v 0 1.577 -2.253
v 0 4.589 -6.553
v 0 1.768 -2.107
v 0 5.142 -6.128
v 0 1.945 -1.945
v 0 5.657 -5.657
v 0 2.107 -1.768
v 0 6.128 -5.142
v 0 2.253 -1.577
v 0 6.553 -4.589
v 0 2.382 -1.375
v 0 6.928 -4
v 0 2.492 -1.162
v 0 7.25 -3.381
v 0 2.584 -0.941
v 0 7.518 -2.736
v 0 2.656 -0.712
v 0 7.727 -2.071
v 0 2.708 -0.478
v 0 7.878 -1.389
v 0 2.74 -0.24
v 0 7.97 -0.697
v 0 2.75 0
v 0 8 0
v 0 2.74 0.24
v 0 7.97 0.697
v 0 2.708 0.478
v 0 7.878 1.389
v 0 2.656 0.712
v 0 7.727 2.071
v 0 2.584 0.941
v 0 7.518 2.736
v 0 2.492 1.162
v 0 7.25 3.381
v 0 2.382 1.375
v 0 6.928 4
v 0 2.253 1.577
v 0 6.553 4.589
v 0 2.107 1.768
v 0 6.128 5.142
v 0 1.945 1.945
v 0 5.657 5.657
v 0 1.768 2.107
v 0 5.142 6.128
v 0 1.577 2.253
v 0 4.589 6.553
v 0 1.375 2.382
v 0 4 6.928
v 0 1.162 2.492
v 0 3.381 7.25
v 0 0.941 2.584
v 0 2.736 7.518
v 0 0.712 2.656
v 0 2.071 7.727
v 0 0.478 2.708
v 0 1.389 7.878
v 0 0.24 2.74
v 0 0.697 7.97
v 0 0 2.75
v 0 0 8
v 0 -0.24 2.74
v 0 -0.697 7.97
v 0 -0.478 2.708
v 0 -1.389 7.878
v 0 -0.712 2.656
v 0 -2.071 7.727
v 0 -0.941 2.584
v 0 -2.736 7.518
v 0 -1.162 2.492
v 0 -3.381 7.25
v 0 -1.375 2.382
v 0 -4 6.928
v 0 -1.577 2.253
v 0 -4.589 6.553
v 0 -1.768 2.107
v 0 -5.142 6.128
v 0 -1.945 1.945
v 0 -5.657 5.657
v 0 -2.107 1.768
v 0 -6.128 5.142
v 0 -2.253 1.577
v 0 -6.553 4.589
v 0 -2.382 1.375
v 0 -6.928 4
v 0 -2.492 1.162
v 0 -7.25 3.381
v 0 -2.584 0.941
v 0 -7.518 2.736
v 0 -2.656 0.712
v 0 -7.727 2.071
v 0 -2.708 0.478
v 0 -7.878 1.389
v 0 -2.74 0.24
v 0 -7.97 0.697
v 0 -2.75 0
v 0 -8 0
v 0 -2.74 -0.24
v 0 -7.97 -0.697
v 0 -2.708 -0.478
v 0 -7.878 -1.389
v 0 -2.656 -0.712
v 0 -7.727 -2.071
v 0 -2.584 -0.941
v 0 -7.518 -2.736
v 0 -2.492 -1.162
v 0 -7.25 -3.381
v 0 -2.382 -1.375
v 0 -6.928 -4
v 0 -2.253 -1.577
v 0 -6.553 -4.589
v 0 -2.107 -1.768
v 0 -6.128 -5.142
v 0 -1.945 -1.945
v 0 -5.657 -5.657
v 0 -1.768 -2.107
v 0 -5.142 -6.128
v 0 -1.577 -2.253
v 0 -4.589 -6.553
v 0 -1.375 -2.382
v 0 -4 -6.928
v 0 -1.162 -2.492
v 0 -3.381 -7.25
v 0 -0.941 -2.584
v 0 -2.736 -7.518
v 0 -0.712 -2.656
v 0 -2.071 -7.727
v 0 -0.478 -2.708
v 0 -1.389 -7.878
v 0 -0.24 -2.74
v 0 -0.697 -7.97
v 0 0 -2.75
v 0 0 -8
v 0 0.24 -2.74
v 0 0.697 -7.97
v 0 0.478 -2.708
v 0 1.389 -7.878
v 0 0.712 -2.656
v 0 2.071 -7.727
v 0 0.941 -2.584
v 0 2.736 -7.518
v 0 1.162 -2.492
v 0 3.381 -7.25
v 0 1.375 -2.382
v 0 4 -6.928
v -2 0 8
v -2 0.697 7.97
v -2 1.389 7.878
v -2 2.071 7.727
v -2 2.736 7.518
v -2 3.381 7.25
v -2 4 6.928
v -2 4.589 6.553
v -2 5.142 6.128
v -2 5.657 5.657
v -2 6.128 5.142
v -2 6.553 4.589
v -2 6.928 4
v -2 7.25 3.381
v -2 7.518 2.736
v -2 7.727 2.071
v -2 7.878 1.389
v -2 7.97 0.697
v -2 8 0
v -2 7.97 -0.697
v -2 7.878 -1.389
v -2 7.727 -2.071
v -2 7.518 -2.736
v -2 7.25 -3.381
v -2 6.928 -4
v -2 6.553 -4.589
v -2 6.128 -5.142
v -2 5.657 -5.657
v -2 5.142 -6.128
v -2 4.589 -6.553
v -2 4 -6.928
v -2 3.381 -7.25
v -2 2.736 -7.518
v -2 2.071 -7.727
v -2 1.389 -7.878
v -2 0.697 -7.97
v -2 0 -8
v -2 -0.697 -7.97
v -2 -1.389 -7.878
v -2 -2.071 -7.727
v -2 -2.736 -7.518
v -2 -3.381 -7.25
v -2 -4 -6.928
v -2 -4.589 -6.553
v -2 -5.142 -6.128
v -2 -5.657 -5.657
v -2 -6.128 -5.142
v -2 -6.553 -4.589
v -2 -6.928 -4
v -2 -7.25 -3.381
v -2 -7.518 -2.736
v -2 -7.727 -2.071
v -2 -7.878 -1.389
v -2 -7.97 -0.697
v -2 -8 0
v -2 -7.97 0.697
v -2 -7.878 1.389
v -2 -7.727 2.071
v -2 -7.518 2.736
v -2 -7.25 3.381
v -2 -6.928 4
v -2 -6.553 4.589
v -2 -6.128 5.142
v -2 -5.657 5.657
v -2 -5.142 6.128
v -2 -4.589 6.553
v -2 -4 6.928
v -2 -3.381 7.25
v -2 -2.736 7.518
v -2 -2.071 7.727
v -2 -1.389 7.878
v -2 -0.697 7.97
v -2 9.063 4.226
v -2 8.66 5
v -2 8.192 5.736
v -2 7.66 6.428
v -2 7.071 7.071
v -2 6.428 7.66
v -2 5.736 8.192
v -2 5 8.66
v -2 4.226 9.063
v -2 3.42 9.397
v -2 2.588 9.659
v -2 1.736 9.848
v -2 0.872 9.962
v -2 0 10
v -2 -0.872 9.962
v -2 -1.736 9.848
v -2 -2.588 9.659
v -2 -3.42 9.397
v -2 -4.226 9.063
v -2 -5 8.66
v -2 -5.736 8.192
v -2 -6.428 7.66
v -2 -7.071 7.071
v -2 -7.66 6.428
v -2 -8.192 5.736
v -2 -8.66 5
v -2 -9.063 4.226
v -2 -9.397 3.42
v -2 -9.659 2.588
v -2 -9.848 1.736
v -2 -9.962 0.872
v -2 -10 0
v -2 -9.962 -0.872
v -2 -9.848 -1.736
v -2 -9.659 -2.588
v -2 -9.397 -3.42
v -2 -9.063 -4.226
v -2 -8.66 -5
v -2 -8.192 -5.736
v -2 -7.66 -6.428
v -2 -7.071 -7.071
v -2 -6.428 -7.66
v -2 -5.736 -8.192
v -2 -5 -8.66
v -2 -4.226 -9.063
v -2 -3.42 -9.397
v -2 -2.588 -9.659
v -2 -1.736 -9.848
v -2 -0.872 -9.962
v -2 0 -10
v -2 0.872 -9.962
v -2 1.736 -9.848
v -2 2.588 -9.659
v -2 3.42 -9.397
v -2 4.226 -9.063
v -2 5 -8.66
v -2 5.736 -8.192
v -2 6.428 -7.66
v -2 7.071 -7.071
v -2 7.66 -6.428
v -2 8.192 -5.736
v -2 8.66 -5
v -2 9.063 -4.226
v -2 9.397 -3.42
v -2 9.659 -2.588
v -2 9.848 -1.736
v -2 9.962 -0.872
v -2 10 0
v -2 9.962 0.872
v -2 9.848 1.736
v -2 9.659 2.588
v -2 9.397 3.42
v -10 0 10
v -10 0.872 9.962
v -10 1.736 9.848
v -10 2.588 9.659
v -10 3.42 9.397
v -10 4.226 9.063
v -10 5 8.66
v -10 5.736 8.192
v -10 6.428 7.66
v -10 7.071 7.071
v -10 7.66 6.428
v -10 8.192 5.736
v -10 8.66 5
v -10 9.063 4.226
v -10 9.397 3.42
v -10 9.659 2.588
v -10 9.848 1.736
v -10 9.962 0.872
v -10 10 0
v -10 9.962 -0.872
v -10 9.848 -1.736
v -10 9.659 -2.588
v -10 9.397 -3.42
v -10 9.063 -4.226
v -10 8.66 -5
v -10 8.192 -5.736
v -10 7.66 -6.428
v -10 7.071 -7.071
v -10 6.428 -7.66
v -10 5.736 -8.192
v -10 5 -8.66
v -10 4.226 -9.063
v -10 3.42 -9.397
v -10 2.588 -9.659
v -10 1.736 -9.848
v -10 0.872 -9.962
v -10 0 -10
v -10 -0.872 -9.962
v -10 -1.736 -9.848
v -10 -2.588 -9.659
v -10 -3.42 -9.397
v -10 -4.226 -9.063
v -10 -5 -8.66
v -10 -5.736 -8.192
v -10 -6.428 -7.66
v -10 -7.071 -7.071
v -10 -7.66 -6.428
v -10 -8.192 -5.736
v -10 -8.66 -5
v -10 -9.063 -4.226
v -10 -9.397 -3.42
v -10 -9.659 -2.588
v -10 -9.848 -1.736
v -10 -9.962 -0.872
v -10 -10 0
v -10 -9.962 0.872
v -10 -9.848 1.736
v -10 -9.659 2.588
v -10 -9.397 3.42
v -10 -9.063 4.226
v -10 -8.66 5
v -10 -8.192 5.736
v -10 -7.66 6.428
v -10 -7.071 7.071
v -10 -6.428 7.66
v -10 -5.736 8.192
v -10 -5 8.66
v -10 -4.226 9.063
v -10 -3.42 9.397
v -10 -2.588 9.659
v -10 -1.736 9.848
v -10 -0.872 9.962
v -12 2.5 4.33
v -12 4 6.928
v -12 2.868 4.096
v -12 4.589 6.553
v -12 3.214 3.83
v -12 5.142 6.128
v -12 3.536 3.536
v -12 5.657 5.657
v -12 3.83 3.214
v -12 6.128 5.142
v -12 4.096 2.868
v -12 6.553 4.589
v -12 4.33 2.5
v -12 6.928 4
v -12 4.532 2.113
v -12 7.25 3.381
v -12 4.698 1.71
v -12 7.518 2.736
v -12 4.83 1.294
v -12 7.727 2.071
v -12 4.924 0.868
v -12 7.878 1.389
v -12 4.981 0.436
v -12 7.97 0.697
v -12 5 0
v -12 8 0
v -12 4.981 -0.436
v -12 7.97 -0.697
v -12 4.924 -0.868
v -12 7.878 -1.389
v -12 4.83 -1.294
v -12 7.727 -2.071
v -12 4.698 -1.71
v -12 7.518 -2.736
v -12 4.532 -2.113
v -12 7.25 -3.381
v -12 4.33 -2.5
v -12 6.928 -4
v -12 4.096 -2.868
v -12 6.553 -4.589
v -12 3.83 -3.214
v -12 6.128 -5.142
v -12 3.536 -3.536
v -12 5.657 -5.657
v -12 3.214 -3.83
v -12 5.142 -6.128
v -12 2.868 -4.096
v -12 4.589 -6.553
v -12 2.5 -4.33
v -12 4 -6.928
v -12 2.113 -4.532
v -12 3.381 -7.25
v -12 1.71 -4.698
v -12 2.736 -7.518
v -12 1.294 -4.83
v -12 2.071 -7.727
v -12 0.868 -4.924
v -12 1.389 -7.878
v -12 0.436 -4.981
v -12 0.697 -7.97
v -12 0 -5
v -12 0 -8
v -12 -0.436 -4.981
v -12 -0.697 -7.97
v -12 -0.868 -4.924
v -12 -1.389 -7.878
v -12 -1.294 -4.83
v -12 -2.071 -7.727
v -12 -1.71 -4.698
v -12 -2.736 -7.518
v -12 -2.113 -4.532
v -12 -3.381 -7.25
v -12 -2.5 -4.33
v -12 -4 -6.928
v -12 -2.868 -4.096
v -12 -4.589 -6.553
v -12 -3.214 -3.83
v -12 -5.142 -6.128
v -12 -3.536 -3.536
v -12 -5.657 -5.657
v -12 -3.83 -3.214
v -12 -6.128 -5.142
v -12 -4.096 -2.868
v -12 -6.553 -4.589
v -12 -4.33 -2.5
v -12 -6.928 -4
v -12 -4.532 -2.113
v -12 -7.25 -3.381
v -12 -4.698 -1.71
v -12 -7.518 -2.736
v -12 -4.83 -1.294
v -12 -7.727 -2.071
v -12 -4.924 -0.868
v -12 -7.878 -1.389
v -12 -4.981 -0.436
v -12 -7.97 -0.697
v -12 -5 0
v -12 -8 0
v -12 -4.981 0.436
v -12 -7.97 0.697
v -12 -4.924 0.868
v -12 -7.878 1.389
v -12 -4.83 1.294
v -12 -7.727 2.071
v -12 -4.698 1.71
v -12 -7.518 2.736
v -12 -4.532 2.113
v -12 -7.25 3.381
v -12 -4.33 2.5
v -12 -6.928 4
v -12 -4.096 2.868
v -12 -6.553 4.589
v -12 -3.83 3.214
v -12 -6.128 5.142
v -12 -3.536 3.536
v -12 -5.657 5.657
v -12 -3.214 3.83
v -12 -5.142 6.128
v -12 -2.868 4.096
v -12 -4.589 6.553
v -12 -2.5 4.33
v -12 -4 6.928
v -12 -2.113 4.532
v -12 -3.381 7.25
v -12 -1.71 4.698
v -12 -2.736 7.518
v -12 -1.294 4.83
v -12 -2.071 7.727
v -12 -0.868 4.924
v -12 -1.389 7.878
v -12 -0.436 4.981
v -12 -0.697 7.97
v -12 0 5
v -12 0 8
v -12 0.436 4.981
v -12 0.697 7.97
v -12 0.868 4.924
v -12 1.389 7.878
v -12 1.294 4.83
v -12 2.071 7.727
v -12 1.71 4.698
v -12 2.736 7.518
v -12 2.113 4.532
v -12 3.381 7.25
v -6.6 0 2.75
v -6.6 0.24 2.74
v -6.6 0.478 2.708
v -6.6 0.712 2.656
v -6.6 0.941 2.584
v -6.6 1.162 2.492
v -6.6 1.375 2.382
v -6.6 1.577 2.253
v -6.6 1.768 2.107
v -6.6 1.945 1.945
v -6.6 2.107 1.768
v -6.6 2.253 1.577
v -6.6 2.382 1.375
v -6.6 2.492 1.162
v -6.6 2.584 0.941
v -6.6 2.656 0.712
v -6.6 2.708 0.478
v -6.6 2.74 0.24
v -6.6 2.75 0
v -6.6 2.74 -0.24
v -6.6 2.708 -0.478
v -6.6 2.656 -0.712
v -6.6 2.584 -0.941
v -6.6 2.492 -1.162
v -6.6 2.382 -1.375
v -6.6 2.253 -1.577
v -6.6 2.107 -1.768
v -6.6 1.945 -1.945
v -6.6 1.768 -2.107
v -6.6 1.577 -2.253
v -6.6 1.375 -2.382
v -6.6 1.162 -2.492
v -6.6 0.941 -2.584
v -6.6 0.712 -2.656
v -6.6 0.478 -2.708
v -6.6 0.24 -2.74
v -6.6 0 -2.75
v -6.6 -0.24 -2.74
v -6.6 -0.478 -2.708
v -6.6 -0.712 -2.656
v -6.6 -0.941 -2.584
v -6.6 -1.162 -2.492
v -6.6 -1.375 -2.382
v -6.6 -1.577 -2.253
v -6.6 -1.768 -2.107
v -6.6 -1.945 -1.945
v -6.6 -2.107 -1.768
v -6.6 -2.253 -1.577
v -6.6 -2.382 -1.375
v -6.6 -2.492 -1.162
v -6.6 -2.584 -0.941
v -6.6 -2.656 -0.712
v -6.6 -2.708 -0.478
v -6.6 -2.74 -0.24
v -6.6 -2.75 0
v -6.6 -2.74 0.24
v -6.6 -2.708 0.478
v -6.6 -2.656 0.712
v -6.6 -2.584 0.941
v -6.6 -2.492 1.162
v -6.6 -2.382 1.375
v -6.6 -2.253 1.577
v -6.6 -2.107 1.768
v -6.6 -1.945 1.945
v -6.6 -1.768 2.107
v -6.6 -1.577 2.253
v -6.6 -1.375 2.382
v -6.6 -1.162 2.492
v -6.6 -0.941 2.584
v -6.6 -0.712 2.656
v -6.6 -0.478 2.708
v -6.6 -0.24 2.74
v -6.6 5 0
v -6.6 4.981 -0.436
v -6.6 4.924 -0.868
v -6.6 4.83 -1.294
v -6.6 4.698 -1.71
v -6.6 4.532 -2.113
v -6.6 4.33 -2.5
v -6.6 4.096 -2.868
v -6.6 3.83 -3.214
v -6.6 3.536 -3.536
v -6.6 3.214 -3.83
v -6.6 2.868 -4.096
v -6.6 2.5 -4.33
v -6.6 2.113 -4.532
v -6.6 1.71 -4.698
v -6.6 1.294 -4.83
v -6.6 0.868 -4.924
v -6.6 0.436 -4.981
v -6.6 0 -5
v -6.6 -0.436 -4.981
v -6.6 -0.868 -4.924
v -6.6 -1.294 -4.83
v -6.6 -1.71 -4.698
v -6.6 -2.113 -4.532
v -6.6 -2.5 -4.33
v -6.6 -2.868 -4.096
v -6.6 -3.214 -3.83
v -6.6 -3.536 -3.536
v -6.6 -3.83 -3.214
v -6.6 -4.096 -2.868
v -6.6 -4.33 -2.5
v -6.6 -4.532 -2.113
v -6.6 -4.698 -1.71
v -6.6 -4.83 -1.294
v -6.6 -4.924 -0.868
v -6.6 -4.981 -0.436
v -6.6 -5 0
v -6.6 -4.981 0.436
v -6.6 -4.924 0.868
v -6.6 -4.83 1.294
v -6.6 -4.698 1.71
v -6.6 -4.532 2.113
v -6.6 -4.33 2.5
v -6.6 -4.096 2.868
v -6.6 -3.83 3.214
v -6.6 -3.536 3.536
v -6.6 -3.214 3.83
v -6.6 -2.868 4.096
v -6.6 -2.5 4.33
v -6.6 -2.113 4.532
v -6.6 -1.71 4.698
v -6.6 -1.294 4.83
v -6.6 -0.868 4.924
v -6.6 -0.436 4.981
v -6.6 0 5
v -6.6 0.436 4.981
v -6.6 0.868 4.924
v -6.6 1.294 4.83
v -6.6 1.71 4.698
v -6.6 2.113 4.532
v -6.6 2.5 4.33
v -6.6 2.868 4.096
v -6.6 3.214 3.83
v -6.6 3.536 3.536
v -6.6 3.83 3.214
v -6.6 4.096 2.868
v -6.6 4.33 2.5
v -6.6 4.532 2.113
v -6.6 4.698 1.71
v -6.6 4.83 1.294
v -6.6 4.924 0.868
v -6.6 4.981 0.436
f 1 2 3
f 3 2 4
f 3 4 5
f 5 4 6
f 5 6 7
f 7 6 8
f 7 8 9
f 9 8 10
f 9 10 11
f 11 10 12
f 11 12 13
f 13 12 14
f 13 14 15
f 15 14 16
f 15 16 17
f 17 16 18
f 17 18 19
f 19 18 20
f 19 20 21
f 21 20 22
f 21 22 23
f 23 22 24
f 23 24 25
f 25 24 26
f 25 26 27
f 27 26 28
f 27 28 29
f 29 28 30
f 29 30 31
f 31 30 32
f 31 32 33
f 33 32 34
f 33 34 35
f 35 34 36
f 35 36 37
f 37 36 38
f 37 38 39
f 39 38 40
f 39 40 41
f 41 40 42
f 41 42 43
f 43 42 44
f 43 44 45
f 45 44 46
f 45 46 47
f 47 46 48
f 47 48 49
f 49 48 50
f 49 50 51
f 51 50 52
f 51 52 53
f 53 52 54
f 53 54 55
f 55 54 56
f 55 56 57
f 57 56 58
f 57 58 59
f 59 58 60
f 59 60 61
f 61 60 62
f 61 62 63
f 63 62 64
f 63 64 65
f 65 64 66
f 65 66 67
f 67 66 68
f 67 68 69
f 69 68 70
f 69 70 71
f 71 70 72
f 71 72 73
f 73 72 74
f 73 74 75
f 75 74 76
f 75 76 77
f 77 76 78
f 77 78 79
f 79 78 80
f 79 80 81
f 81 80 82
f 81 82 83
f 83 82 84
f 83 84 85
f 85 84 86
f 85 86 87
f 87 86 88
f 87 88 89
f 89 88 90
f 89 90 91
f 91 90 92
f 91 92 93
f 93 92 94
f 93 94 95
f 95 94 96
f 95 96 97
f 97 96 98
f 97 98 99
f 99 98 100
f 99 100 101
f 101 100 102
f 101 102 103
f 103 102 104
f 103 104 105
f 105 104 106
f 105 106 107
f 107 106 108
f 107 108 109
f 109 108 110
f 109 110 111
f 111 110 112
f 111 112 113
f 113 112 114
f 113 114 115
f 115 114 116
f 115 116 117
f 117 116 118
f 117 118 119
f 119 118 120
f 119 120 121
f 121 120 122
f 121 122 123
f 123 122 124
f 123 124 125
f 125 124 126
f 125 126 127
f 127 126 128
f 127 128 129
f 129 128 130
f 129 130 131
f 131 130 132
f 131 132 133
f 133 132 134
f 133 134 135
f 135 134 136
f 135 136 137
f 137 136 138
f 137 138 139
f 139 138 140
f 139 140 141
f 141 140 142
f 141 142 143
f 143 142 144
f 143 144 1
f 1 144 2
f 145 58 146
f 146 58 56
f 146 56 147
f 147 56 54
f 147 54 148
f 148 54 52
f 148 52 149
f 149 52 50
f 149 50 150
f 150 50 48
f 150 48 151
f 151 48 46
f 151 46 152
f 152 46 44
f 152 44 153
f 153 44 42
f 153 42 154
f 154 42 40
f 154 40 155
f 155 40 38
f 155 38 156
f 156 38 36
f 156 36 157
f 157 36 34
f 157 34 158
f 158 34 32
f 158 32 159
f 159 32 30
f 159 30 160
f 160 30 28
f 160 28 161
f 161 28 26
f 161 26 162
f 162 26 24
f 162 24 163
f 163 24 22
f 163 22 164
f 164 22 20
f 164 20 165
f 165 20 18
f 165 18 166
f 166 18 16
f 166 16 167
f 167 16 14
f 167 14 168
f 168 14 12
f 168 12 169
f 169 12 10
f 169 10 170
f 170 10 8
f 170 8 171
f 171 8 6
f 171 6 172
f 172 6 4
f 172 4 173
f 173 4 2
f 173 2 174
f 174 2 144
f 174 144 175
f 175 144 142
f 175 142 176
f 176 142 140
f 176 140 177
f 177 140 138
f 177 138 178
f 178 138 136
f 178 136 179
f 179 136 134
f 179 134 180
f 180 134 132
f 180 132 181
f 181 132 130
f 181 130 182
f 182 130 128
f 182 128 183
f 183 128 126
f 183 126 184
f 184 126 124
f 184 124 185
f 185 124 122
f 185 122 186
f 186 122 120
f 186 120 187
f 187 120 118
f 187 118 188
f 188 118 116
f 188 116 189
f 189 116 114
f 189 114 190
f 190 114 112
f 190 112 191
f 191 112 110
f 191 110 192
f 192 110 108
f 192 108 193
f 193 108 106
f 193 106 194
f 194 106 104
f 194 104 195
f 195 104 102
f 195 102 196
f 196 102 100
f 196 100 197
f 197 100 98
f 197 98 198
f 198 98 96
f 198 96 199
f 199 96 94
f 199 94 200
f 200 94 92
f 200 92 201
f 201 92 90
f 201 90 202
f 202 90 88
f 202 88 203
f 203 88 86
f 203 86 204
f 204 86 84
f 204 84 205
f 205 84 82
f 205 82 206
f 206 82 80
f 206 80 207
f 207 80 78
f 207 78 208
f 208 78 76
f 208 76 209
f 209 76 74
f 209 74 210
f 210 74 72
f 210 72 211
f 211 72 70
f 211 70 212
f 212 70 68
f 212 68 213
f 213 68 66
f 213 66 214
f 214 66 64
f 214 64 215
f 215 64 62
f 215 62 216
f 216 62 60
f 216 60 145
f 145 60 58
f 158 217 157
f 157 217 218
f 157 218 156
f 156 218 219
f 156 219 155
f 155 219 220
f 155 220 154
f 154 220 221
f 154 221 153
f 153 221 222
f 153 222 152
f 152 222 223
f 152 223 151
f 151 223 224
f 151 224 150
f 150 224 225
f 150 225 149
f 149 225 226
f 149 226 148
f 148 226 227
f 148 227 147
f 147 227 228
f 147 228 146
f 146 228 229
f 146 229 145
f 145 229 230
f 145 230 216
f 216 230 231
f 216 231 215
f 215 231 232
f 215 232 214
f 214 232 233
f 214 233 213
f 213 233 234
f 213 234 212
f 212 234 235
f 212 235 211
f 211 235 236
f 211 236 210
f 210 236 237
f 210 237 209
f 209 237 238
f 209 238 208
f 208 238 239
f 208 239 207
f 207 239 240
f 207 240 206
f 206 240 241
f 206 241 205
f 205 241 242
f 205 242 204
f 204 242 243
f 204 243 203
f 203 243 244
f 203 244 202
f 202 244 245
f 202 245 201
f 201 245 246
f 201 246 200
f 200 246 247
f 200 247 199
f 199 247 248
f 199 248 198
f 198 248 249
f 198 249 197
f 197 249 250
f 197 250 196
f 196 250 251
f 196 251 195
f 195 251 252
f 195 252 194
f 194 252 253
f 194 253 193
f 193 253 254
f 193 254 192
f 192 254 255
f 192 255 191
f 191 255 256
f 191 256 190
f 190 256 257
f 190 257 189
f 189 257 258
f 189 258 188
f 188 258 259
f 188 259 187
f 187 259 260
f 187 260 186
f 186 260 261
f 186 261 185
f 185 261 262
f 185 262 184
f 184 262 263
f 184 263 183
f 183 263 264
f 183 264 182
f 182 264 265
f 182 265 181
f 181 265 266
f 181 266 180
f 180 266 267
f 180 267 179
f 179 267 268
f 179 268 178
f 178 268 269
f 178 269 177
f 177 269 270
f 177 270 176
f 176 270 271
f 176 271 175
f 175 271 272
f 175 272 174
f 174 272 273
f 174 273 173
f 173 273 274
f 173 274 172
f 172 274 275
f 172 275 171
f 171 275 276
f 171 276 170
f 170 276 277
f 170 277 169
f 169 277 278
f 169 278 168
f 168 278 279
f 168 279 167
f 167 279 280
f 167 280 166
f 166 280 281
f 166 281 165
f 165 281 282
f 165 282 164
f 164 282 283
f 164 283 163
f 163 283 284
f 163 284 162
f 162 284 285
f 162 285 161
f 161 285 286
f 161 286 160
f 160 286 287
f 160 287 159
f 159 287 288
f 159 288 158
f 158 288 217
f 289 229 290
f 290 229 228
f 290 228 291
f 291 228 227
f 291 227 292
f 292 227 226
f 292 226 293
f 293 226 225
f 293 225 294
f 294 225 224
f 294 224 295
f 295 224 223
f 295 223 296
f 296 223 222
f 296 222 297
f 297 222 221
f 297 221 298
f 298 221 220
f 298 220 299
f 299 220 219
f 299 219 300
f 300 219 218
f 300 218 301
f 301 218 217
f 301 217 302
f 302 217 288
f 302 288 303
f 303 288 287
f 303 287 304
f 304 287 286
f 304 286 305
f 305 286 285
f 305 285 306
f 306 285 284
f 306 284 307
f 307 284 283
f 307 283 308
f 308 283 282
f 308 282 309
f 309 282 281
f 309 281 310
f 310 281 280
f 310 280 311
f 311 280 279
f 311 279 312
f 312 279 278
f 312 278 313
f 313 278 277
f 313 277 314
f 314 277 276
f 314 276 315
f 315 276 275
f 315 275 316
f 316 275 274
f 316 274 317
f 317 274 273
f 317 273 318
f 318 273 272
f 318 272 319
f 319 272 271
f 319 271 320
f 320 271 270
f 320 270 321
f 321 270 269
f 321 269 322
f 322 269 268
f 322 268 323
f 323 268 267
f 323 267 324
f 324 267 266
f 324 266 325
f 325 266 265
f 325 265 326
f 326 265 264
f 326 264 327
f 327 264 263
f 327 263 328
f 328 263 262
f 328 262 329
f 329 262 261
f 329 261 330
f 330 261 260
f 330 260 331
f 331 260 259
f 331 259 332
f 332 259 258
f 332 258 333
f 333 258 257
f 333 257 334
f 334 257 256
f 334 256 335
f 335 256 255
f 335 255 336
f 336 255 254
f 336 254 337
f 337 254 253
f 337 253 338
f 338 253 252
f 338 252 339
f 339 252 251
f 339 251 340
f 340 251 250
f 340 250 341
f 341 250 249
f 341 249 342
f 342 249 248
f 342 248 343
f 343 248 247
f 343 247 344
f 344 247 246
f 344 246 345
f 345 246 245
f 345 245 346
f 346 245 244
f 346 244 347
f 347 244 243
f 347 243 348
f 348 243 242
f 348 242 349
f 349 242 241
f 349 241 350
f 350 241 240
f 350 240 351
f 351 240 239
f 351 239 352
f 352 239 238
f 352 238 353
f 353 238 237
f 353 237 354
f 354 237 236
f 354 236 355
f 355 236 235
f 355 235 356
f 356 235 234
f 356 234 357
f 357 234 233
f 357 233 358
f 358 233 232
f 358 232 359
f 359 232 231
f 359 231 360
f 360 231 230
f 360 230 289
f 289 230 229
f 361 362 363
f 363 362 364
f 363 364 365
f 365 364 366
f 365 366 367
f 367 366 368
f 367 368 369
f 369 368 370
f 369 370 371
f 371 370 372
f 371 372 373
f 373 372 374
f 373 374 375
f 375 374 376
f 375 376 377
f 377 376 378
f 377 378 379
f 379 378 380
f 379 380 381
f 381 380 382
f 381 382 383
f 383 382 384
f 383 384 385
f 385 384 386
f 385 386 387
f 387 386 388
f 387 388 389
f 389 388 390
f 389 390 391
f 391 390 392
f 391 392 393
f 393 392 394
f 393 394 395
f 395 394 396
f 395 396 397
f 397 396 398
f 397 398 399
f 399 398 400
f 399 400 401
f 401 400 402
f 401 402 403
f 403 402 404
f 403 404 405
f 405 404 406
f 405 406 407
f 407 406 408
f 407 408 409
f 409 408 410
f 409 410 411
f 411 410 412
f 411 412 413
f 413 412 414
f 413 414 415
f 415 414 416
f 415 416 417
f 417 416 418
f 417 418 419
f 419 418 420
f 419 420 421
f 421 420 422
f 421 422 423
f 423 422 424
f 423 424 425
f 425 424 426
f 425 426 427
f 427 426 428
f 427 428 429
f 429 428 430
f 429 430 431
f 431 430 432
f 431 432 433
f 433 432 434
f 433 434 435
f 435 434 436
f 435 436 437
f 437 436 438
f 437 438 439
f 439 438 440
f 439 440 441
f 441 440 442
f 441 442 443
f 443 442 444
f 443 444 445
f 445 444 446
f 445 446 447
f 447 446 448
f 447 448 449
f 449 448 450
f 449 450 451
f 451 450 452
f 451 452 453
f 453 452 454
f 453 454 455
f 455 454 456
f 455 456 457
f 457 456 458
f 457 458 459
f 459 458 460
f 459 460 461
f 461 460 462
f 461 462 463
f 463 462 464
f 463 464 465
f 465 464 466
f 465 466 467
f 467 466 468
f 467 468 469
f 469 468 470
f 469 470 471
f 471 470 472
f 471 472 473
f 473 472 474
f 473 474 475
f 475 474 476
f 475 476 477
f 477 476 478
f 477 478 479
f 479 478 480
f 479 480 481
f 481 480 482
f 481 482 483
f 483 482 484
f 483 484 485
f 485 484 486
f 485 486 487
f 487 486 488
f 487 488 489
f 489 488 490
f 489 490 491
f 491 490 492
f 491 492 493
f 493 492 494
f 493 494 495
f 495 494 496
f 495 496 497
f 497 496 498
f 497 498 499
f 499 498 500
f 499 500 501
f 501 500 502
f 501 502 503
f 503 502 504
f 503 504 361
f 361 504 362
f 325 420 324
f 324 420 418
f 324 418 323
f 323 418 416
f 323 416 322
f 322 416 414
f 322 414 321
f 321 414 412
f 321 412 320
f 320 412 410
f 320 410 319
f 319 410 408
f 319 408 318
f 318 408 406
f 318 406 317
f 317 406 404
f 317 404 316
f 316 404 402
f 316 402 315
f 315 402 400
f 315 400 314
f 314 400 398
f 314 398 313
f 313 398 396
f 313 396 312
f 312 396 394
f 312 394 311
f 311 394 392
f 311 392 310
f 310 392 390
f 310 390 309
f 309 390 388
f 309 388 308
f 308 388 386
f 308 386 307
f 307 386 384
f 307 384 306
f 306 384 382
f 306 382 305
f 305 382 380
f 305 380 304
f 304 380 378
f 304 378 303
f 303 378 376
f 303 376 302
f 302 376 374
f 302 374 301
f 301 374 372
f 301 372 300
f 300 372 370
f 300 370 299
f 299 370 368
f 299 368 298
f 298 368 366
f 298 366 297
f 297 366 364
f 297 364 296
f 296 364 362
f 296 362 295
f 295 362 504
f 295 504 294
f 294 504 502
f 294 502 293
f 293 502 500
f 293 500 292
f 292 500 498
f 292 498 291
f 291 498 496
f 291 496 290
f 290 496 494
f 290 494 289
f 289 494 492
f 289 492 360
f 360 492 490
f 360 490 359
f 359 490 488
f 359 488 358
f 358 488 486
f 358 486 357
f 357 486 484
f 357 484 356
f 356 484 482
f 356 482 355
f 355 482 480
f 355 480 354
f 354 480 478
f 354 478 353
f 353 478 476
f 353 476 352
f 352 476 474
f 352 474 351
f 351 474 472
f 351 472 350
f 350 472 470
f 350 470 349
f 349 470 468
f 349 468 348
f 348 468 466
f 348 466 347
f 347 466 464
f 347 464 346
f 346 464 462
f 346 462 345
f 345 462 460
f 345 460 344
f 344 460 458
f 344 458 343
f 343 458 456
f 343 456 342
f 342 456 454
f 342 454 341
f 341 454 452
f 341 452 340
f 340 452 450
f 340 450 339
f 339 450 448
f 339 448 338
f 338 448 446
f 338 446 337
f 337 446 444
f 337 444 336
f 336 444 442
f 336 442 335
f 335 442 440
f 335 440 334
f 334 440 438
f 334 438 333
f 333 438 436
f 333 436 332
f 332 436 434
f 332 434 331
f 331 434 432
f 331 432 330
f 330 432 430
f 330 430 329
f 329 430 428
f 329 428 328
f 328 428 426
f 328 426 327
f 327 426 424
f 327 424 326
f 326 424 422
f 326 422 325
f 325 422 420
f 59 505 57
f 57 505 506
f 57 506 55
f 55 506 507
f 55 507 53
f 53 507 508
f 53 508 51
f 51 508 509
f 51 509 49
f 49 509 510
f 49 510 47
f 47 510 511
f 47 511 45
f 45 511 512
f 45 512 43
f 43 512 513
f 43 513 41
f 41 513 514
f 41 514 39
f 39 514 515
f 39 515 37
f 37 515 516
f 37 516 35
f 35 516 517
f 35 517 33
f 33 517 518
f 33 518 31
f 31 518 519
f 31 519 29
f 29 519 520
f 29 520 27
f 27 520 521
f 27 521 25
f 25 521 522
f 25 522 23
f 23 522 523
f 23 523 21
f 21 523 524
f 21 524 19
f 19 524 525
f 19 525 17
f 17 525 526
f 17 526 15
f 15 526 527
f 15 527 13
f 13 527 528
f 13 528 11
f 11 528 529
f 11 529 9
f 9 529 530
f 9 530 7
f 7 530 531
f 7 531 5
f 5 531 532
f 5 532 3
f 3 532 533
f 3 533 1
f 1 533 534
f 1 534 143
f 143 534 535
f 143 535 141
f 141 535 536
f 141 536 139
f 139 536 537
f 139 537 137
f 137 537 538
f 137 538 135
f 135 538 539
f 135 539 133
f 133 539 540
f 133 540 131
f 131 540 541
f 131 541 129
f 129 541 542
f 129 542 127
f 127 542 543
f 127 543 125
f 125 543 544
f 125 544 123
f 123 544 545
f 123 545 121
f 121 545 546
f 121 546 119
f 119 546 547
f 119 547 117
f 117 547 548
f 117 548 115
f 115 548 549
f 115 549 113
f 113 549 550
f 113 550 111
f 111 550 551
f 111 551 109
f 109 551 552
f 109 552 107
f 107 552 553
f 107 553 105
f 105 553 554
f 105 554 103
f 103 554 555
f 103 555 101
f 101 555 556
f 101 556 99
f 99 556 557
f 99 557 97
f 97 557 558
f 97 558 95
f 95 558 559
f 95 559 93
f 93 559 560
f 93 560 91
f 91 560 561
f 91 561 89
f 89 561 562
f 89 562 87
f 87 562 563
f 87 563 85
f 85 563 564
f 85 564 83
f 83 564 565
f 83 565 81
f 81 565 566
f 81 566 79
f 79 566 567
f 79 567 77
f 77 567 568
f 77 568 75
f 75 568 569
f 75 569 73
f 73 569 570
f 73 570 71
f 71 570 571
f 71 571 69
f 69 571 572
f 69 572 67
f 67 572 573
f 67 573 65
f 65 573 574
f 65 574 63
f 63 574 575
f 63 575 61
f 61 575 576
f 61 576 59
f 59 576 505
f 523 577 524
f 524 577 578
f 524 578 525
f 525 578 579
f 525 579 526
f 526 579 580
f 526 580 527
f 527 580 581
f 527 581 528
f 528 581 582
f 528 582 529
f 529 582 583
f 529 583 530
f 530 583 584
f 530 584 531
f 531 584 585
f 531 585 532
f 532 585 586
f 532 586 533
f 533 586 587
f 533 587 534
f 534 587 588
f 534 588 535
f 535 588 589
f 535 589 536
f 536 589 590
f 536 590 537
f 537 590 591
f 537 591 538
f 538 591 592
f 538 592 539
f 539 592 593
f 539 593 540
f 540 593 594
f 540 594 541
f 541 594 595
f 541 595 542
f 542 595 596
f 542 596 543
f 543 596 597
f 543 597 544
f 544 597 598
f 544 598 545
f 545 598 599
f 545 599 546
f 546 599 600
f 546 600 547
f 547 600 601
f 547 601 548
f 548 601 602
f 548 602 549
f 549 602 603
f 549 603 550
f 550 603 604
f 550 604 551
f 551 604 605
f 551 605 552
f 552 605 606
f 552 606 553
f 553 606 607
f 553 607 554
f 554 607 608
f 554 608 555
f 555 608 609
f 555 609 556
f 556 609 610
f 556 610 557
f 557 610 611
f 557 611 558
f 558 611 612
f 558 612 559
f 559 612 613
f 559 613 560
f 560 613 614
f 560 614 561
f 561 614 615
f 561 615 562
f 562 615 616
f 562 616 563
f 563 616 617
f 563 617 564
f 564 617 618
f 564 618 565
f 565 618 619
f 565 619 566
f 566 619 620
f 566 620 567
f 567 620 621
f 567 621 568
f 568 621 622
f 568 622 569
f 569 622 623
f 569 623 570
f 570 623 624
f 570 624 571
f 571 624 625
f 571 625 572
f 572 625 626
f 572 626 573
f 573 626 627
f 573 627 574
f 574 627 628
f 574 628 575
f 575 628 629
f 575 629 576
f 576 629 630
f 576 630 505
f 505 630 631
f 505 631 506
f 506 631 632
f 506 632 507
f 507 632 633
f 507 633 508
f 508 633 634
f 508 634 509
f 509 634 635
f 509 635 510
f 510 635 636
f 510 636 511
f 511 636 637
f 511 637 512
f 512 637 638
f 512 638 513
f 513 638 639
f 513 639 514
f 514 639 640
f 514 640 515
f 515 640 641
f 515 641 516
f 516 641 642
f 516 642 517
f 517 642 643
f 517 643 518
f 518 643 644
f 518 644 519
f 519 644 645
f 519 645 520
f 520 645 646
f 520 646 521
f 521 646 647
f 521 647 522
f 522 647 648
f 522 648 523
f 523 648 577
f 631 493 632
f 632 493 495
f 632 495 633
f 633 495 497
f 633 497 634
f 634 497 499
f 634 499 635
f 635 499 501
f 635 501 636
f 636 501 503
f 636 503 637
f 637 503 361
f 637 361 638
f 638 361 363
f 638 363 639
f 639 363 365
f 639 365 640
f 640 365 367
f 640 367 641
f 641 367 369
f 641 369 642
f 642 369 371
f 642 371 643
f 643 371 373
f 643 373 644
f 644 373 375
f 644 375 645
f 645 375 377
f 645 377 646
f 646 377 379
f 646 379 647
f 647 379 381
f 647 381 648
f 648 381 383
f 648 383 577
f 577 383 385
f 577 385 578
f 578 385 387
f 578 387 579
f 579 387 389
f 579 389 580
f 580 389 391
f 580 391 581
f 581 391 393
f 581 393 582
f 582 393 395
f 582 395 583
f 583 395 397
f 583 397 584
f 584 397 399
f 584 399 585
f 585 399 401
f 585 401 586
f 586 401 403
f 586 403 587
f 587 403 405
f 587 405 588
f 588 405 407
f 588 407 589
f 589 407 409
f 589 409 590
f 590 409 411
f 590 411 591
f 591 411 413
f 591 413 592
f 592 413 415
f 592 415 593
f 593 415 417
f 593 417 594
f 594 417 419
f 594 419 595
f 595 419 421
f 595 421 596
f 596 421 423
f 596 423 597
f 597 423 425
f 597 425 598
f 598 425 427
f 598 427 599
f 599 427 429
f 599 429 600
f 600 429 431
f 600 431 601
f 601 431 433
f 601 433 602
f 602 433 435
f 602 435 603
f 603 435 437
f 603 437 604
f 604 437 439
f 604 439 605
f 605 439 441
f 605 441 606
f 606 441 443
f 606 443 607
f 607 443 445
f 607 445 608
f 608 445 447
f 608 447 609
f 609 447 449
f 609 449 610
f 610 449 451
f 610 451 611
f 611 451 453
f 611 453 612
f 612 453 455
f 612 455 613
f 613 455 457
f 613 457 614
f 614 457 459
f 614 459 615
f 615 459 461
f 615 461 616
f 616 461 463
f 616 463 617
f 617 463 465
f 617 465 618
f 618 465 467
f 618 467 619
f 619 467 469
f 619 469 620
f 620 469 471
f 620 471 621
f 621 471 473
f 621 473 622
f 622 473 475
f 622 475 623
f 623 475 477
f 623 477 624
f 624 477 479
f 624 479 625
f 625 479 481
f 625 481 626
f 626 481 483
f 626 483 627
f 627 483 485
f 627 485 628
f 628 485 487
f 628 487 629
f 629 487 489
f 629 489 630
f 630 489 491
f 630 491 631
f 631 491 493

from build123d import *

# Parameters (mm, degrees)
FRONT_CHAMFERS_SIZE        = 2
MOUNTING_SCREW_D           = 5.5
MOUNTING_SCREW_DEPTH       = 12
MOUNTING_SCREW_CBORE_D     = 10
MOUNTING_SCREW_CBORE_DEPTH = 5.4
MOUNTING_SCREW_TIP         = 1.652366702


with BuildPart() as part:
    # Sketch1 → body (revolve)
    with BuildSketch(Plane.XY, mode=Mode.PRIVATE) as body_sk:
        Polygon((0, 0), (0, 8), (-2, 8), (-2, 10), (-12, 10), (-12, 0), align=None)
    revolve(body_sk.sketch.rotate(Axis((0, 0, 0), (1, 0, 0)), 90), axis=Axis((0, 0, 0), (1, 0, 0)))

    # front_chamfers
    front_chamfers_edges = [part.edges().sort_by_distance(p)[0] for p in [
        (-12, 0, -10),
    ]]
    chamfer(front_chamfers_edges, length=FRONT_CHAMFERS_SIZE)

    # mounting_screw
    with Locations(Plane.ZY.offset(12)):
        with Locations((0, 0)):
            CounterBoreHole(MOUNTING_SCREW_D / 2, MOUNTING_SCREW_CBORE_D / 2, MOUNTING_SCREW_CBORE_DEPTH, depth=MOUNTING_SCREW_DEPTH)
            with Locations((0, 0, -(MOUNTING_SCREW_DEPTH + MOUNTING_SCREW_TIP / 2))):  # 118° drill point
                Cone(0, MOUNTING_SCREW_D / 2, MOUNTING_SCREW_TIP, mode=Mode.SUBTRACT)


solid = part.part
